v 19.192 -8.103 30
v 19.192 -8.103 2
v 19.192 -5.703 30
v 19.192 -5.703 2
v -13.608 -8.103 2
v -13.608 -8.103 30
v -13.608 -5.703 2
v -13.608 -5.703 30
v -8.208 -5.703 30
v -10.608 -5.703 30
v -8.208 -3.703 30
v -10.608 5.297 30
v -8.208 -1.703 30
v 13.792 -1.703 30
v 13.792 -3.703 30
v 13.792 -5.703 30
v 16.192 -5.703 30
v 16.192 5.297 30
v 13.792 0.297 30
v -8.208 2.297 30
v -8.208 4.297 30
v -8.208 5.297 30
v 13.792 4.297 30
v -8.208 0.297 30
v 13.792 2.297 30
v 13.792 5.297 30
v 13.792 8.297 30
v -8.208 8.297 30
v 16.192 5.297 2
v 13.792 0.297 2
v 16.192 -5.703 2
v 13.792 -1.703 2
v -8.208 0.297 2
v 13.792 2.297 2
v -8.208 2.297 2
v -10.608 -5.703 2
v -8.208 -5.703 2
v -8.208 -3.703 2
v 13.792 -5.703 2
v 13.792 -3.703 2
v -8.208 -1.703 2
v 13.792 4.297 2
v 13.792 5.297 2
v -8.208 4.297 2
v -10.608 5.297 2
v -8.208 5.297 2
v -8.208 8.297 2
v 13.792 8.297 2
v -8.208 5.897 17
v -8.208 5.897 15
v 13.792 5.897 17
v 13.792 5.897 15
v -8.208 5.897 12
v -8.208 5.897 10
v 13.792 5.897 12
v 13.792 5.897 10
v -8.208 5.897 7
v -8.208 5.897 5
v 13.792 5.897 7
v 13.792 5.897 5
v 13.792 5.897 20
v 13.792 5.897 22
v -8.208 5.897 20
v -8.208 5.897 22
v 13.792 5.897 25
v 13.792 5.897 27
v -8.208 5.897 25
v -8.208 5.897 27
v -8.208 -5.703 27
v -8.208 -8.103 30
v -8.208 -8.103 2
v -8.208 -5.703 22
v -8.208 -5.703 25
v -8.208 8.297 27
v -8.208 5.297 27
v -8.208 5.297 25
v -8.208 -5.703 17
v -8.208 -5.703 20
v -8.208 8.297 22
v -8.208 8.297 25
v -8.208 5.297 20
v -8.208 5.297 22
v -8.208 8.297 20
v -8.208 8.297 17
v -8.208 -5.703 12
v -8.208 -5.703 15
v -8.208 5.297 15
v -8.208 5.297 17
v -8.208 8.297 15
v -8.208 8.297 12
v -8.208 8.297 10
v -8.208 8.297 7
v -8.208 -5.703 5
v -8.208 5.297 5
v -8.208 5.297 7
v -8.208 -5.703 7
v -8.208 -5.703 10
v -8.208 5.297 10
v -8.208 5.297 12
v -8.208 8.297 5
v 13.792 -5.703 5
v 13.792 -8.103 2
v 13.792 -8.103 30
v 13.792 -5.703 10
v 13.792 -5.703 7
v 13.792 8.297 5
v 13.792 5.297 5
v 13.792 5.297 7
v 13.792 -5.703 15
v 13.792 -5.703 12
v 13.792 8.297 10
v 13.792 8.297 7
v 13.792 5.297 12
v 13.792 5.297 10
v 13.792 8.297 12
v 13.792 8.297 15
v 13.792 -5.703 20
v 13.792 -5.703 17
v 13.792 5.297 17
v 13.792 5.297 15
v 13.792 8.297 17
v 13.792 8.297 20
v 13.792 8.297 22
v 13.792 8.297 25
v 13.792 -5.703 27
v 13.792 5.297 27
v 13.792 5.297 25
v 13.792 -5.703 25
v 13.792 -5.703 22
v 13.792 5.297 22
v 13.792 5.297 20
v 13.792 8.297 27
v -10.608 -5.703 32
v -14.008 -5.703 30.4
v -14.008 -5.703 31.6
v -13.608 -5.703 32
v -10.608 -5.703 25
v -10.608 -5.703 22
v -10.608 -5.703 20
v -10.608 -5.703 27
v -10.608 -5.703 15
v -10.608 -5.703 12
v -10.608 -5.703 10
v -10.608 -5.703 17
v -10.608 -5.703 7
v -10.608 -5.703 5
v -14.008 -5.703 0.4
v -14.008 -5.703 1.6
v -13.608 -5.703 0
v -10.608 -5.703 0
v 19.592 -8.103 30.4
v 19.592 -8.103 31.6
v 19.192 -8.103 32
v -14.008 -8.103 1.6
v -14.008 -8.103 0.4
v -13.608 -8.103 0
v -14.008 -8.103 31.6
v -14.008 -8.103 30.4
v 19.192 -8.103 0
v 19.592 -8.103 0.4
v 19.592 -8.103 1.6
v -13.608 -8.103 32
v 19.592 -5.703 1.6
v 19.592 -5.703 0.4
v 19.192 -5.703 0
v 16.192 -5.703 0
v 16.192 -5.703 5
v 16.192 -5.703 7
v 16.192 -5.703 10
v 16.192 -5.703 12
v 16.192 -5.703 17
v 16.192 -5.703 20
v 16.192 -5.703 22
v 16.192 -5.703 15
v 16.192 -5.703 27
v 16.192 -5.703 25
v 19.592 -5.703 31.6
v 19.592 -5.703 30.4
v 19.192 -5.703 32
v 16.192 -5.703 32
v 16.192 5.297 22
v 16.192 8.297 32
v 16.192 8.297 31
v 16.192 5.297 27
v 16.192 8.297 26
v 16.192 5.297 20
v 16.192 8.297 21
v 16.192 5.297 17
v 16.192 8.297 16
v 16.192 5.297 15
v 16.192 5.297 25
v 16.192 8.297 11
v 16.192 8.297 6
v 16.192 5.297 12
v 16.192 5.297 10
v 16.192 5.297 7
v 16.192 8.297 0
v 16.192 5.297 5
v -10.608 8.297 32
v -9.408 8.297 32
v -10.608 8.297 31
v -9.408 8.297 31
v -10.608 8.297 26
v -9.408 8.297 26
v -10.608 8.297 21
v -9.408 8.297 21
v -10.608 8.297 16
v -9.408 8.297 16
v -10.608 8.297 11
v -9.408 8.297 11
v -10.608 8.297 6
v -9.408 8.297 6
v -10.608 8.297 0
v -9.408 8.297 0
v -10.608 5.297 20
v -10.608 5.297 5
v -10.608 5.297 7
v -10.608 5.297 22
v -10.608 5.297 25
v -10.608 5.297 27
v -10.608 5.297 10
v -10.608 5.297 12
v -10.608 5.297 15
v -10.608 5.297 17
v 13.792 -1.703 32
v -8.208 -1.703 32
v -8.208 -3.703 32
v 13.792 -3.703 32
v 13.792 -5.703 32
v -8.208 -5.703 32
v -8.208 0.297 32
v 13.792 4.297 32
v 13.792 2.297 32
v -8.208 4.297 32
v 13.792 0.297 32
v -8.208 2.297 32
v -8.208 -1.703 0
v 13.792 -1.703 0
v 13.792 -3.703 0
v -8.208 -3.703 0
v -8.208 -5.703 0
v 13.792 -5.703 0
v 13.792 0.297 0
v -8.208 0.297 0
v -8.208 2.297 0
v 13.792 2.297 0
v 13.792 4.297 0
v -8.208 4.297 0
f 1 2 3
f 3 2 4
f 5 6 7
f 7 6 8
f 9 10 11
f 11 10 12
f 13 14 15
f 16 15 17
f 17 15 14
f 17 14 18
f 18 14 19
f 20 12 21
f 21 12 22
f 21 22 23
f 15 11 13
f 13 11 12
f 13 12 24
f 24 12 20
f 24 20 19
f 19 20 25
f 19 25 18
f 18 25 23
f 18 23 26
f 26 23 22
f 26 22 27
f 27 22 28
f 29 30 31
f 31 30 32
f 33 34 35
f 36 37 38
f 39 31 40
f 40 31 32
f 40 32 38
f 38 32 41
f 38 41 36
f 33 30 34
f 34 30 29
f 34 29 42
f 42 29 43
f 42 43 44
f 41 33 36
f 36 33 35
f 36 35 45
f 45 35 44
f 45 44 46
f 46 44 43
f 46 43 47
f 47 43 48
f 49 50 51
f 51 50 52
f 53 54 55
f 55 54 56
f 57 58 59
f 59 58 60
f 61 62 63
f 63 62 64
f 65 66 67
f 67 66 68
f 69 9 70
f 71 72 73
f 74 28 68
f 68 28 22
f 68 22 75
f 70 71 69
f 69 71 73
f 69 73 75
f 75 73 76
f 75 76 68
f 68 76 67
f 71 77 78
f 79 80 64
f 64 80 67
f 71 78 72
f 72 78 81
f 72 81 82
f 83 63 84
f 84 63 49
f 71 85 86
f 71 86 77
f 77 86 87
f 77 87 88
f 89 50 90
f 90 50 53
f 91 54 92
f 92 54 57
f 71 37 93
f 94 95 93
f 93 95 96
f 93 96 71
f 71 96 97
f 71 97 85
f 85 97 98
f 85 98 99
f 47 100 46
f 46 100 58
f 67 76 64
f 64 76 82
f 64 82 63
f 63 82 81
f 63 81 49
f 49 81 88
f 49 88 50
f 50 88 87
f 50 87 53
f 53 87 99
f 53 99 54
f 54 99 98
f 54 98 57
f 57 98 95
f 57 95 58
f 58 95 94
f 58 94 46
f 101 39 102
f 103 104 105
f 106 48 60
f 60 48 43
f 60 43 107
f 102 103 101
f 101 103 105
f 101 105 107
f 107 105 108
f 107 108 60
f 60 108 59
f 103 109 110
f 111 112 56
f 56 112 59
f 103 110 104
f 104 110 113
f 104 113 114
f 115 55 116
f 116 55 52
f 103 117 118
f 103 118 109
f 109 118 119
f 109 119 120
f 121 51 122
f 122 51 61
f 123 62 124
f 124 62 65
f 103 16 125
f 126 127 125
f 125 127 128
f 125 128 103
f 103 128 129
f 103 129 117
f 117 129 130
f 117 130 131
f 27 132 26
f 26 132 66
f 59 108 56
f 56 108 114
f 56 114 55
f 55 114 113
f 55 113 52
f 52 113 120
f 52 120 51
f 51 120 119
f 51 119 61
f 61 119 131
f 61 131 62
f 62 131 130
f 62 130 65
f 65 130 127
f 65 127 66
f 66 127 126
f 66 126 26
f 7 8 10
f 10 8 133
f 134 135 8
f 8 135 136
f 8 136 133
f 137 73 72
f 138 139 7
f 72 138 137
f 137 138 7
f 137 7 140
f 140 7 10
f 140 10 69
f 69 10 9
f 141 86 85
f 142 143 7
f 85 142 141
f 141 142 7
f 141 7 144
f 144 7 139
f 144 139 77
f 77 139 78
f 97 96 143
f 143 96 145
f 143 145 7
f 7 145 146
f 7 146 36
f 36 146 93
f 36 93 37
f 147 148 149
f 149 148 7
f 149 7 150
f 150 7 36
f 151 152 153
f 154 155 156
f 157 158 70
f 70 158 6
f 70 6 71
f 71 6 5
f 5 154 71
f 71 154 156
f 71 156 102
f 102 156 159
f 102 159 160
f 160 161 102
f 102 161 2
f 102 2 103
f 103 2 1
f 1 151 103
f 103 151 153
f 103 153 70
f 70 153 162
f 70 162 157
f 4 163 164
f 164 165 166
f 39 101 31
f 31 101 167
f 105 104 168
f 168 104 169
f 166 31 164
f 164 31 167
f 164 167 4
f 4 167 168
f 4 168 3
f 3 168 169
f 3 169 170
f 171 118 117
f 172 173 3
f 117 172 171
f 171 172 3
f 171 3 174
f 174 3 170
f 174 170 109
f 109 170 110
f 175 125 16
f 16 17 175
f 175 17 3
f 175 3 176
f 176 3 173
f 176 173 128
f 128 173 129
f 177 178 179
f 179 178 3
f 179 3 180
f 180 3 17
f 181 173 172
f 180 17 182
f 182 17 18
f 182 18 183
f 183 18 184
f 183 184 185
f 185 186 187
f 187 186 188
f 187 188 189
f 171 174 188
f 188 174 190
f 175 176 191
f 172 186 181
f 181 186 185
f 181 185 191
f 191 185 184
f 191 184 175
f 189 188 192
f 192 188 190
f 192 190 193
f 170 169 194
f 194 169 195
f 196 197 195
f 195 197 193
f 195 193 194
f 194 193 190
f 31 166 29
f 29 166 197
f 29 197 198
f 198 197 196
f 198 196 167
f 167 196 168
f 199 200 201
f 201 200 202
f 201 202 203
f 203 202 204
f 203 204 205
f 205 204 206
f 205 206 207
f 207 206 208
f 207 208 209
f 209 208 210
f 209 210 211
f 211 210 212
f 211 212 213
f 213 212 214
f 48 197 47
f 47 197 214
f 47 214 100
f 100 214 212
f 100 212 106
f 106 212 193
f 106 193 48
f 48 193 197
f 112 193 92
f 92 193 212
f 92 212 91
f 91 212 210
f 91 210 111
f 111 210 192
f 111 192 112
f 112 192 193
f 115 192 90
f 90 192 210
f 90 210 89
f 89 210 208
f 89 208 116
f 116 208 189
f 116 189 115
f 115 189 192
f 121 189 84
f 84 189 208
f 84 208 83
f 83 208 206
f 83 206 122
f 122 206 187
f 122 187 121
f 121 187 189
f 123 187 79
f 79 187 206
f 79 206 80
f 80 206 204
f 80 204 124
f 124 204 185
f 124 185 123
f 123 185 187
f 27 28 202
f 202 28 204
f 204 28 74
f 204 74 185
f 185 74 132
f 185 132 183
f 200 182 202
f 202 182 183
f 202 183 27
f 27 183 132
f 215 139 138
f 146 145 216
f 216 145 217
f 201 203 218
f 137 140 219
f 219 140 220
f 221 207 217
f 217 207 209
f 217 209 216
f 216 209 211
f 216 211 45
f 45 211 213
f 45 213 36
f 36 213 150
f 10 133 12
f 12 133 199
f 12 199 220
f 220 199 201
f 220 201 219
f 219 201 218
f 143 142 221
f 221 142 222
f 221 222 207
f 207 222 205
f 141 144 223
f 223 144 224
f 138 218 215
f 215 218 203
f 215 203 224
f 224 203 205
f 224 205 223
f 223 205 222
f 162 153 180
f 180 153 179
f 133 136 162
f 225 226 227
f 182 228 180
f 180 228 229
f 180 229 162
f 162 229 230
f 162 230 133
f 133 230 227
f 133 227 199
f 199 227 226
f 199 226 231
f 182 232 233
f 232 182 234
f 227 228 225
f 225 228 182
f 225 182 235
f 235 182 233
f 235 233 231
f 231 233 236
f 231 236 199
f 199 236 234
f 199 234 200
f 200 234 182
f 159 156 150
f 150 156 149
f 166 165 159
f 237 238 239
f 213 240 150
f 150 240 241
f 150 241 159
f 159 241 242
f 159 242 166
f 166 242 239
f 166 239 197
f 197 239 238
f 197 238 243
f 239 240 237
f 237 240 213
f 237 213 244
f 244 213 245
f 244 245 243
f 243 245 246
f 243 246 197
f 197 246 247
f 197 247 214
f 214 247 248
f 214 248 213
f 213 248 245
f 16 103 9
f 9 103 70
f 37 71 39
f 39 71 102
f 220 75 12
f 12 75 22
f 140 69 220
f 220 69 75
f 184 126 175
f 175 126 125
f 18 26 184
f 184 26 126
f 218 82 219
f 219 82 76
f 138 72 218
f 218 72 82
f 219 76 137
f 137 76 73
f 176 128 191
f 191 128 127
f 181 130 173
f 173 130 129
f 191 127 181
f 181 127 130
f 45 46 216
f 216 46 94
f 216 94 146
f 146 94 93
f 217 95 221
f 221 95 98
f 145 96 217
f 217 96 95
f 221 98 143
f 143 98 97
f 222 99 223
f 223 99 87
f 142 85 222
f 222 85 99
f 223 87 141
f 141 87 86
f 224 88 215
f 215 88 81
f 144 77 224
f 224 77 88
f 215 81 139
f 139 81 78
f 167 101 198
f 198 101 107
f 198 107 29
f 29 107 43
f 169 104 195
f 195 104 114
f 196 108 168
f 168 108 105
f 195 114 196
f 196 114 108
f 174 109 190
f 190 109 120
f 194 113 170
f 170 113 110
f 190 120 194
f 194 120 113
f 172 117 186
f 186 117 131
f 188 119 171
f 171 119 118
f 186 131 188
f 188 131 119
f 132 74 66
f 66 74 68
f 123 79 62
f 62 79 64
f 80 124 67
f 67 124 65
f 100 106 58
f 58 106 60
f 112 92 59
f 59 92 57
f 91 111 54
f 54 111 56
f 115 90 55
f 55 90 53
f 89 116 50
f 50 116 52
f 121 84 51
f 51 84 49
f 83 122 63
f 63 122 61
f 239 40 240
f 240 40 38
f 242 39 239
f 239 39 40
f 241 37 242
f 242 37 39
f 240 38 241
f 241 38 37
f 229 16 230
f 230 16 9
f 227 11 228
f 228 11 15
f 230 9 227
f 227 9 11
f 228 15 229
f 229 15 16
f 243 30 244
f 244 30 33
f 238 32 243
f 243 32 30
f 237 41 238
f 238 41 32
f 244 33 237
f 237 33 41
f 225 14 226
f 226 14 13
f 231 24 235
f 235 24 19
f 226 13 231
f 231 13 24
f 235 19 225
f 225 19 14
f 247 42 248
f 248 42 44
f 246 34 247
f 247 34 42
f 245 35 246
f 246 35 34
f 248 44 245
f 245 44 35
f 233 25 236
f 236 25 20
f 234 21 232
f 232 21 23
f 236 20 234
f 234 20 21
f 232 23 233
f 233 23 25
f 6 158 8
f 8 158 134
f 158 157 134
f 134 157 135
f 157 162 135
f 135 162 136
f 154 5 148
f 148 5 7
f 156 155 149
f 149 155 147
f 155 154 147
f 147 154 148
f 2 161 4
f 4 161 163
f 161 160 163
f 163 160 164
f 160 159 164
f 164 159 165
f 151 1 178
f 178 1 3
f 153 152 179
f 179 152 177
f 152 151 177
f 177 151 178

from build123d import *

# Parameters (mm, degrees)
BOSS_EXTRUDE1_DEPTH = 32
SKETCH2_W           = 22
SKETCH2_H           = 2
BOSS_EXTRUDE2_DEPTH = 14
SKETCH4_W           = 3
SKETCH4_H           = 11
CUT_EXTRUDE2_DEPTH  = 45.506992773
LPATTERN1_COUNT     = 6
LPATTERN1_PITCH     = 5
SKETCH5_W           = 22
SKETCH5_H           = 3
CUT_EXTRUDE3_DEPTH  = 40.853893963
LPATTERN2_COUNT     = 6
LPATTERN2_PITCH     = 5
SKETCH6_W           = 22
SKETCH6_H           = 2
CUT_EXTRUDE4_DEPTH  = 37.567270471
LPATTERN3_COUNT     = 3
LPATTERN3_PITCH     = 4
BOSS_EXTRUDE3_DEPTH = 2.4


with BuildPart() as part:
    # Sketch1 → Boss-Extrude1 (new body)
    with BuildSketch(Plane.XY):
        Polygon((-13.608, -5.703470261), (-13.608, -8.103470261), (-8.208, -8.103470261), (-8.208, 5.896529739), (13.792, 5.896529739), (13.792, -8.103470261), (19.192, -8.103470261), (19.192, -5.703470261), (16.192, -5.703470261), (16.192, 8.296529739), (-10.608, 8.296529739), (-10.608, -5.703470261), align=None)
    extrude(amount=BOSS_EXTRUDE1_DEPTH)

    # Sketch2 → Boss-Extrude2 (add)
    with BuildSketch(Plane.XZ.offset(-5.896529739)):
        with Locations((2.792, 31)):
            Rectangle(SKETCH2_W, SKETCH2_H)
        with Locations((2.792, 1)):
            Rectangle(SKETCH2_W, SKETCH2_H)
    extrude(amount=BOSS_EXTRUDE2_DEPTH)

    # Sketch4 → Cut-Extrude2 (cut, through all)
    with BuildSketch(Plane.ZY.offset(10.608)):
        with Locations((28.5, -0.203470261)):
            Rectangle(SKETCH4_W, SKETCH4_H)
    cut_extrude2 = extrude(amount=-CUT_EXTRUDE2_DEPTH, mode=Mode.SUBTRACT)

    # LPattern1: Cut-Extrude2 ×6
    with Locations(*[(0, 0, -i * LPATTERN1_PITCH) for i in range(1, LPATTERN1_COUNT)]):
        add(cut_extrude2, mode=Mode.SUBTRACT)

    # Sketch5 → Cut-Extrude3 (cut, through all)
    with BuildSketch(Plane.XZ.offset(-5.896529739)):
        with Locations((2.792, 28.5)):
            Rectangle(SKETCH5_W, SKETCH5_H)
    cut_extrude3 = extrude(amount=-CUT_EXTRUDE3_DEPTH, mode=Mode.SUBTRACT)

    # LPattern2: Cut-Extrude3 ×6
    with Locations(*[(0, 0, -i * LPATTERN2_PITCH) for i in range(1, LPATTERN2_COUNT)]):
        add(cut_extrude3, mode=Mode.SUBTRACT)

    # Sketch6 → Cut-Extrude4 (cut, symmetric)
    with BuildSketch(Plane(origin=(0, 0, 30), x_dir=(-1, 0, 0), z_dir=(0, 0, -1))):
        with Locations((-2.792, -4.703470261)):
            Rectangle(SKETCH6_W, SKETCH6_H)
    cut_extrude4 = extrude(amount=CUT_EXTRUDE4_DEPTH, both=True, mode=Mode.SUBTRACT)

    # LPattern3: Cut-Extrude4 ×3
    with Locations(*[(0, i * LPATTERN3_PITCH, 0) for i in range(1, LPATTERN3_COUNT)]):
        add(cut_extrude4, mode=Mode.SUBTRACT)

    # Sketch8 → Boss-Extrude3 (add)
    with BuildSketch(Plane.XZ.offset(8.103470261)):
        Polygon((-13.608, 30), (-14.008, 30.4), (-14.008, 31.6), (-13.608, 32), align=None)
        Polygon((-13.608, 2), (-13.608, 0), (-14.008, 0.4), (-14.008, 1.6), align=None)
        Polygon((19.192, 2), (19.592, 1.6), (19.592, 0.4), (19.192, 0), align=None)
        Polygon((19.192, 30), (19.192, 32), (19.592, 31.6), (19.592, 30.4), align=None)
    extrude(amount=-BOSS_EXTRUDE3_DEPTH)


solid = part.part
